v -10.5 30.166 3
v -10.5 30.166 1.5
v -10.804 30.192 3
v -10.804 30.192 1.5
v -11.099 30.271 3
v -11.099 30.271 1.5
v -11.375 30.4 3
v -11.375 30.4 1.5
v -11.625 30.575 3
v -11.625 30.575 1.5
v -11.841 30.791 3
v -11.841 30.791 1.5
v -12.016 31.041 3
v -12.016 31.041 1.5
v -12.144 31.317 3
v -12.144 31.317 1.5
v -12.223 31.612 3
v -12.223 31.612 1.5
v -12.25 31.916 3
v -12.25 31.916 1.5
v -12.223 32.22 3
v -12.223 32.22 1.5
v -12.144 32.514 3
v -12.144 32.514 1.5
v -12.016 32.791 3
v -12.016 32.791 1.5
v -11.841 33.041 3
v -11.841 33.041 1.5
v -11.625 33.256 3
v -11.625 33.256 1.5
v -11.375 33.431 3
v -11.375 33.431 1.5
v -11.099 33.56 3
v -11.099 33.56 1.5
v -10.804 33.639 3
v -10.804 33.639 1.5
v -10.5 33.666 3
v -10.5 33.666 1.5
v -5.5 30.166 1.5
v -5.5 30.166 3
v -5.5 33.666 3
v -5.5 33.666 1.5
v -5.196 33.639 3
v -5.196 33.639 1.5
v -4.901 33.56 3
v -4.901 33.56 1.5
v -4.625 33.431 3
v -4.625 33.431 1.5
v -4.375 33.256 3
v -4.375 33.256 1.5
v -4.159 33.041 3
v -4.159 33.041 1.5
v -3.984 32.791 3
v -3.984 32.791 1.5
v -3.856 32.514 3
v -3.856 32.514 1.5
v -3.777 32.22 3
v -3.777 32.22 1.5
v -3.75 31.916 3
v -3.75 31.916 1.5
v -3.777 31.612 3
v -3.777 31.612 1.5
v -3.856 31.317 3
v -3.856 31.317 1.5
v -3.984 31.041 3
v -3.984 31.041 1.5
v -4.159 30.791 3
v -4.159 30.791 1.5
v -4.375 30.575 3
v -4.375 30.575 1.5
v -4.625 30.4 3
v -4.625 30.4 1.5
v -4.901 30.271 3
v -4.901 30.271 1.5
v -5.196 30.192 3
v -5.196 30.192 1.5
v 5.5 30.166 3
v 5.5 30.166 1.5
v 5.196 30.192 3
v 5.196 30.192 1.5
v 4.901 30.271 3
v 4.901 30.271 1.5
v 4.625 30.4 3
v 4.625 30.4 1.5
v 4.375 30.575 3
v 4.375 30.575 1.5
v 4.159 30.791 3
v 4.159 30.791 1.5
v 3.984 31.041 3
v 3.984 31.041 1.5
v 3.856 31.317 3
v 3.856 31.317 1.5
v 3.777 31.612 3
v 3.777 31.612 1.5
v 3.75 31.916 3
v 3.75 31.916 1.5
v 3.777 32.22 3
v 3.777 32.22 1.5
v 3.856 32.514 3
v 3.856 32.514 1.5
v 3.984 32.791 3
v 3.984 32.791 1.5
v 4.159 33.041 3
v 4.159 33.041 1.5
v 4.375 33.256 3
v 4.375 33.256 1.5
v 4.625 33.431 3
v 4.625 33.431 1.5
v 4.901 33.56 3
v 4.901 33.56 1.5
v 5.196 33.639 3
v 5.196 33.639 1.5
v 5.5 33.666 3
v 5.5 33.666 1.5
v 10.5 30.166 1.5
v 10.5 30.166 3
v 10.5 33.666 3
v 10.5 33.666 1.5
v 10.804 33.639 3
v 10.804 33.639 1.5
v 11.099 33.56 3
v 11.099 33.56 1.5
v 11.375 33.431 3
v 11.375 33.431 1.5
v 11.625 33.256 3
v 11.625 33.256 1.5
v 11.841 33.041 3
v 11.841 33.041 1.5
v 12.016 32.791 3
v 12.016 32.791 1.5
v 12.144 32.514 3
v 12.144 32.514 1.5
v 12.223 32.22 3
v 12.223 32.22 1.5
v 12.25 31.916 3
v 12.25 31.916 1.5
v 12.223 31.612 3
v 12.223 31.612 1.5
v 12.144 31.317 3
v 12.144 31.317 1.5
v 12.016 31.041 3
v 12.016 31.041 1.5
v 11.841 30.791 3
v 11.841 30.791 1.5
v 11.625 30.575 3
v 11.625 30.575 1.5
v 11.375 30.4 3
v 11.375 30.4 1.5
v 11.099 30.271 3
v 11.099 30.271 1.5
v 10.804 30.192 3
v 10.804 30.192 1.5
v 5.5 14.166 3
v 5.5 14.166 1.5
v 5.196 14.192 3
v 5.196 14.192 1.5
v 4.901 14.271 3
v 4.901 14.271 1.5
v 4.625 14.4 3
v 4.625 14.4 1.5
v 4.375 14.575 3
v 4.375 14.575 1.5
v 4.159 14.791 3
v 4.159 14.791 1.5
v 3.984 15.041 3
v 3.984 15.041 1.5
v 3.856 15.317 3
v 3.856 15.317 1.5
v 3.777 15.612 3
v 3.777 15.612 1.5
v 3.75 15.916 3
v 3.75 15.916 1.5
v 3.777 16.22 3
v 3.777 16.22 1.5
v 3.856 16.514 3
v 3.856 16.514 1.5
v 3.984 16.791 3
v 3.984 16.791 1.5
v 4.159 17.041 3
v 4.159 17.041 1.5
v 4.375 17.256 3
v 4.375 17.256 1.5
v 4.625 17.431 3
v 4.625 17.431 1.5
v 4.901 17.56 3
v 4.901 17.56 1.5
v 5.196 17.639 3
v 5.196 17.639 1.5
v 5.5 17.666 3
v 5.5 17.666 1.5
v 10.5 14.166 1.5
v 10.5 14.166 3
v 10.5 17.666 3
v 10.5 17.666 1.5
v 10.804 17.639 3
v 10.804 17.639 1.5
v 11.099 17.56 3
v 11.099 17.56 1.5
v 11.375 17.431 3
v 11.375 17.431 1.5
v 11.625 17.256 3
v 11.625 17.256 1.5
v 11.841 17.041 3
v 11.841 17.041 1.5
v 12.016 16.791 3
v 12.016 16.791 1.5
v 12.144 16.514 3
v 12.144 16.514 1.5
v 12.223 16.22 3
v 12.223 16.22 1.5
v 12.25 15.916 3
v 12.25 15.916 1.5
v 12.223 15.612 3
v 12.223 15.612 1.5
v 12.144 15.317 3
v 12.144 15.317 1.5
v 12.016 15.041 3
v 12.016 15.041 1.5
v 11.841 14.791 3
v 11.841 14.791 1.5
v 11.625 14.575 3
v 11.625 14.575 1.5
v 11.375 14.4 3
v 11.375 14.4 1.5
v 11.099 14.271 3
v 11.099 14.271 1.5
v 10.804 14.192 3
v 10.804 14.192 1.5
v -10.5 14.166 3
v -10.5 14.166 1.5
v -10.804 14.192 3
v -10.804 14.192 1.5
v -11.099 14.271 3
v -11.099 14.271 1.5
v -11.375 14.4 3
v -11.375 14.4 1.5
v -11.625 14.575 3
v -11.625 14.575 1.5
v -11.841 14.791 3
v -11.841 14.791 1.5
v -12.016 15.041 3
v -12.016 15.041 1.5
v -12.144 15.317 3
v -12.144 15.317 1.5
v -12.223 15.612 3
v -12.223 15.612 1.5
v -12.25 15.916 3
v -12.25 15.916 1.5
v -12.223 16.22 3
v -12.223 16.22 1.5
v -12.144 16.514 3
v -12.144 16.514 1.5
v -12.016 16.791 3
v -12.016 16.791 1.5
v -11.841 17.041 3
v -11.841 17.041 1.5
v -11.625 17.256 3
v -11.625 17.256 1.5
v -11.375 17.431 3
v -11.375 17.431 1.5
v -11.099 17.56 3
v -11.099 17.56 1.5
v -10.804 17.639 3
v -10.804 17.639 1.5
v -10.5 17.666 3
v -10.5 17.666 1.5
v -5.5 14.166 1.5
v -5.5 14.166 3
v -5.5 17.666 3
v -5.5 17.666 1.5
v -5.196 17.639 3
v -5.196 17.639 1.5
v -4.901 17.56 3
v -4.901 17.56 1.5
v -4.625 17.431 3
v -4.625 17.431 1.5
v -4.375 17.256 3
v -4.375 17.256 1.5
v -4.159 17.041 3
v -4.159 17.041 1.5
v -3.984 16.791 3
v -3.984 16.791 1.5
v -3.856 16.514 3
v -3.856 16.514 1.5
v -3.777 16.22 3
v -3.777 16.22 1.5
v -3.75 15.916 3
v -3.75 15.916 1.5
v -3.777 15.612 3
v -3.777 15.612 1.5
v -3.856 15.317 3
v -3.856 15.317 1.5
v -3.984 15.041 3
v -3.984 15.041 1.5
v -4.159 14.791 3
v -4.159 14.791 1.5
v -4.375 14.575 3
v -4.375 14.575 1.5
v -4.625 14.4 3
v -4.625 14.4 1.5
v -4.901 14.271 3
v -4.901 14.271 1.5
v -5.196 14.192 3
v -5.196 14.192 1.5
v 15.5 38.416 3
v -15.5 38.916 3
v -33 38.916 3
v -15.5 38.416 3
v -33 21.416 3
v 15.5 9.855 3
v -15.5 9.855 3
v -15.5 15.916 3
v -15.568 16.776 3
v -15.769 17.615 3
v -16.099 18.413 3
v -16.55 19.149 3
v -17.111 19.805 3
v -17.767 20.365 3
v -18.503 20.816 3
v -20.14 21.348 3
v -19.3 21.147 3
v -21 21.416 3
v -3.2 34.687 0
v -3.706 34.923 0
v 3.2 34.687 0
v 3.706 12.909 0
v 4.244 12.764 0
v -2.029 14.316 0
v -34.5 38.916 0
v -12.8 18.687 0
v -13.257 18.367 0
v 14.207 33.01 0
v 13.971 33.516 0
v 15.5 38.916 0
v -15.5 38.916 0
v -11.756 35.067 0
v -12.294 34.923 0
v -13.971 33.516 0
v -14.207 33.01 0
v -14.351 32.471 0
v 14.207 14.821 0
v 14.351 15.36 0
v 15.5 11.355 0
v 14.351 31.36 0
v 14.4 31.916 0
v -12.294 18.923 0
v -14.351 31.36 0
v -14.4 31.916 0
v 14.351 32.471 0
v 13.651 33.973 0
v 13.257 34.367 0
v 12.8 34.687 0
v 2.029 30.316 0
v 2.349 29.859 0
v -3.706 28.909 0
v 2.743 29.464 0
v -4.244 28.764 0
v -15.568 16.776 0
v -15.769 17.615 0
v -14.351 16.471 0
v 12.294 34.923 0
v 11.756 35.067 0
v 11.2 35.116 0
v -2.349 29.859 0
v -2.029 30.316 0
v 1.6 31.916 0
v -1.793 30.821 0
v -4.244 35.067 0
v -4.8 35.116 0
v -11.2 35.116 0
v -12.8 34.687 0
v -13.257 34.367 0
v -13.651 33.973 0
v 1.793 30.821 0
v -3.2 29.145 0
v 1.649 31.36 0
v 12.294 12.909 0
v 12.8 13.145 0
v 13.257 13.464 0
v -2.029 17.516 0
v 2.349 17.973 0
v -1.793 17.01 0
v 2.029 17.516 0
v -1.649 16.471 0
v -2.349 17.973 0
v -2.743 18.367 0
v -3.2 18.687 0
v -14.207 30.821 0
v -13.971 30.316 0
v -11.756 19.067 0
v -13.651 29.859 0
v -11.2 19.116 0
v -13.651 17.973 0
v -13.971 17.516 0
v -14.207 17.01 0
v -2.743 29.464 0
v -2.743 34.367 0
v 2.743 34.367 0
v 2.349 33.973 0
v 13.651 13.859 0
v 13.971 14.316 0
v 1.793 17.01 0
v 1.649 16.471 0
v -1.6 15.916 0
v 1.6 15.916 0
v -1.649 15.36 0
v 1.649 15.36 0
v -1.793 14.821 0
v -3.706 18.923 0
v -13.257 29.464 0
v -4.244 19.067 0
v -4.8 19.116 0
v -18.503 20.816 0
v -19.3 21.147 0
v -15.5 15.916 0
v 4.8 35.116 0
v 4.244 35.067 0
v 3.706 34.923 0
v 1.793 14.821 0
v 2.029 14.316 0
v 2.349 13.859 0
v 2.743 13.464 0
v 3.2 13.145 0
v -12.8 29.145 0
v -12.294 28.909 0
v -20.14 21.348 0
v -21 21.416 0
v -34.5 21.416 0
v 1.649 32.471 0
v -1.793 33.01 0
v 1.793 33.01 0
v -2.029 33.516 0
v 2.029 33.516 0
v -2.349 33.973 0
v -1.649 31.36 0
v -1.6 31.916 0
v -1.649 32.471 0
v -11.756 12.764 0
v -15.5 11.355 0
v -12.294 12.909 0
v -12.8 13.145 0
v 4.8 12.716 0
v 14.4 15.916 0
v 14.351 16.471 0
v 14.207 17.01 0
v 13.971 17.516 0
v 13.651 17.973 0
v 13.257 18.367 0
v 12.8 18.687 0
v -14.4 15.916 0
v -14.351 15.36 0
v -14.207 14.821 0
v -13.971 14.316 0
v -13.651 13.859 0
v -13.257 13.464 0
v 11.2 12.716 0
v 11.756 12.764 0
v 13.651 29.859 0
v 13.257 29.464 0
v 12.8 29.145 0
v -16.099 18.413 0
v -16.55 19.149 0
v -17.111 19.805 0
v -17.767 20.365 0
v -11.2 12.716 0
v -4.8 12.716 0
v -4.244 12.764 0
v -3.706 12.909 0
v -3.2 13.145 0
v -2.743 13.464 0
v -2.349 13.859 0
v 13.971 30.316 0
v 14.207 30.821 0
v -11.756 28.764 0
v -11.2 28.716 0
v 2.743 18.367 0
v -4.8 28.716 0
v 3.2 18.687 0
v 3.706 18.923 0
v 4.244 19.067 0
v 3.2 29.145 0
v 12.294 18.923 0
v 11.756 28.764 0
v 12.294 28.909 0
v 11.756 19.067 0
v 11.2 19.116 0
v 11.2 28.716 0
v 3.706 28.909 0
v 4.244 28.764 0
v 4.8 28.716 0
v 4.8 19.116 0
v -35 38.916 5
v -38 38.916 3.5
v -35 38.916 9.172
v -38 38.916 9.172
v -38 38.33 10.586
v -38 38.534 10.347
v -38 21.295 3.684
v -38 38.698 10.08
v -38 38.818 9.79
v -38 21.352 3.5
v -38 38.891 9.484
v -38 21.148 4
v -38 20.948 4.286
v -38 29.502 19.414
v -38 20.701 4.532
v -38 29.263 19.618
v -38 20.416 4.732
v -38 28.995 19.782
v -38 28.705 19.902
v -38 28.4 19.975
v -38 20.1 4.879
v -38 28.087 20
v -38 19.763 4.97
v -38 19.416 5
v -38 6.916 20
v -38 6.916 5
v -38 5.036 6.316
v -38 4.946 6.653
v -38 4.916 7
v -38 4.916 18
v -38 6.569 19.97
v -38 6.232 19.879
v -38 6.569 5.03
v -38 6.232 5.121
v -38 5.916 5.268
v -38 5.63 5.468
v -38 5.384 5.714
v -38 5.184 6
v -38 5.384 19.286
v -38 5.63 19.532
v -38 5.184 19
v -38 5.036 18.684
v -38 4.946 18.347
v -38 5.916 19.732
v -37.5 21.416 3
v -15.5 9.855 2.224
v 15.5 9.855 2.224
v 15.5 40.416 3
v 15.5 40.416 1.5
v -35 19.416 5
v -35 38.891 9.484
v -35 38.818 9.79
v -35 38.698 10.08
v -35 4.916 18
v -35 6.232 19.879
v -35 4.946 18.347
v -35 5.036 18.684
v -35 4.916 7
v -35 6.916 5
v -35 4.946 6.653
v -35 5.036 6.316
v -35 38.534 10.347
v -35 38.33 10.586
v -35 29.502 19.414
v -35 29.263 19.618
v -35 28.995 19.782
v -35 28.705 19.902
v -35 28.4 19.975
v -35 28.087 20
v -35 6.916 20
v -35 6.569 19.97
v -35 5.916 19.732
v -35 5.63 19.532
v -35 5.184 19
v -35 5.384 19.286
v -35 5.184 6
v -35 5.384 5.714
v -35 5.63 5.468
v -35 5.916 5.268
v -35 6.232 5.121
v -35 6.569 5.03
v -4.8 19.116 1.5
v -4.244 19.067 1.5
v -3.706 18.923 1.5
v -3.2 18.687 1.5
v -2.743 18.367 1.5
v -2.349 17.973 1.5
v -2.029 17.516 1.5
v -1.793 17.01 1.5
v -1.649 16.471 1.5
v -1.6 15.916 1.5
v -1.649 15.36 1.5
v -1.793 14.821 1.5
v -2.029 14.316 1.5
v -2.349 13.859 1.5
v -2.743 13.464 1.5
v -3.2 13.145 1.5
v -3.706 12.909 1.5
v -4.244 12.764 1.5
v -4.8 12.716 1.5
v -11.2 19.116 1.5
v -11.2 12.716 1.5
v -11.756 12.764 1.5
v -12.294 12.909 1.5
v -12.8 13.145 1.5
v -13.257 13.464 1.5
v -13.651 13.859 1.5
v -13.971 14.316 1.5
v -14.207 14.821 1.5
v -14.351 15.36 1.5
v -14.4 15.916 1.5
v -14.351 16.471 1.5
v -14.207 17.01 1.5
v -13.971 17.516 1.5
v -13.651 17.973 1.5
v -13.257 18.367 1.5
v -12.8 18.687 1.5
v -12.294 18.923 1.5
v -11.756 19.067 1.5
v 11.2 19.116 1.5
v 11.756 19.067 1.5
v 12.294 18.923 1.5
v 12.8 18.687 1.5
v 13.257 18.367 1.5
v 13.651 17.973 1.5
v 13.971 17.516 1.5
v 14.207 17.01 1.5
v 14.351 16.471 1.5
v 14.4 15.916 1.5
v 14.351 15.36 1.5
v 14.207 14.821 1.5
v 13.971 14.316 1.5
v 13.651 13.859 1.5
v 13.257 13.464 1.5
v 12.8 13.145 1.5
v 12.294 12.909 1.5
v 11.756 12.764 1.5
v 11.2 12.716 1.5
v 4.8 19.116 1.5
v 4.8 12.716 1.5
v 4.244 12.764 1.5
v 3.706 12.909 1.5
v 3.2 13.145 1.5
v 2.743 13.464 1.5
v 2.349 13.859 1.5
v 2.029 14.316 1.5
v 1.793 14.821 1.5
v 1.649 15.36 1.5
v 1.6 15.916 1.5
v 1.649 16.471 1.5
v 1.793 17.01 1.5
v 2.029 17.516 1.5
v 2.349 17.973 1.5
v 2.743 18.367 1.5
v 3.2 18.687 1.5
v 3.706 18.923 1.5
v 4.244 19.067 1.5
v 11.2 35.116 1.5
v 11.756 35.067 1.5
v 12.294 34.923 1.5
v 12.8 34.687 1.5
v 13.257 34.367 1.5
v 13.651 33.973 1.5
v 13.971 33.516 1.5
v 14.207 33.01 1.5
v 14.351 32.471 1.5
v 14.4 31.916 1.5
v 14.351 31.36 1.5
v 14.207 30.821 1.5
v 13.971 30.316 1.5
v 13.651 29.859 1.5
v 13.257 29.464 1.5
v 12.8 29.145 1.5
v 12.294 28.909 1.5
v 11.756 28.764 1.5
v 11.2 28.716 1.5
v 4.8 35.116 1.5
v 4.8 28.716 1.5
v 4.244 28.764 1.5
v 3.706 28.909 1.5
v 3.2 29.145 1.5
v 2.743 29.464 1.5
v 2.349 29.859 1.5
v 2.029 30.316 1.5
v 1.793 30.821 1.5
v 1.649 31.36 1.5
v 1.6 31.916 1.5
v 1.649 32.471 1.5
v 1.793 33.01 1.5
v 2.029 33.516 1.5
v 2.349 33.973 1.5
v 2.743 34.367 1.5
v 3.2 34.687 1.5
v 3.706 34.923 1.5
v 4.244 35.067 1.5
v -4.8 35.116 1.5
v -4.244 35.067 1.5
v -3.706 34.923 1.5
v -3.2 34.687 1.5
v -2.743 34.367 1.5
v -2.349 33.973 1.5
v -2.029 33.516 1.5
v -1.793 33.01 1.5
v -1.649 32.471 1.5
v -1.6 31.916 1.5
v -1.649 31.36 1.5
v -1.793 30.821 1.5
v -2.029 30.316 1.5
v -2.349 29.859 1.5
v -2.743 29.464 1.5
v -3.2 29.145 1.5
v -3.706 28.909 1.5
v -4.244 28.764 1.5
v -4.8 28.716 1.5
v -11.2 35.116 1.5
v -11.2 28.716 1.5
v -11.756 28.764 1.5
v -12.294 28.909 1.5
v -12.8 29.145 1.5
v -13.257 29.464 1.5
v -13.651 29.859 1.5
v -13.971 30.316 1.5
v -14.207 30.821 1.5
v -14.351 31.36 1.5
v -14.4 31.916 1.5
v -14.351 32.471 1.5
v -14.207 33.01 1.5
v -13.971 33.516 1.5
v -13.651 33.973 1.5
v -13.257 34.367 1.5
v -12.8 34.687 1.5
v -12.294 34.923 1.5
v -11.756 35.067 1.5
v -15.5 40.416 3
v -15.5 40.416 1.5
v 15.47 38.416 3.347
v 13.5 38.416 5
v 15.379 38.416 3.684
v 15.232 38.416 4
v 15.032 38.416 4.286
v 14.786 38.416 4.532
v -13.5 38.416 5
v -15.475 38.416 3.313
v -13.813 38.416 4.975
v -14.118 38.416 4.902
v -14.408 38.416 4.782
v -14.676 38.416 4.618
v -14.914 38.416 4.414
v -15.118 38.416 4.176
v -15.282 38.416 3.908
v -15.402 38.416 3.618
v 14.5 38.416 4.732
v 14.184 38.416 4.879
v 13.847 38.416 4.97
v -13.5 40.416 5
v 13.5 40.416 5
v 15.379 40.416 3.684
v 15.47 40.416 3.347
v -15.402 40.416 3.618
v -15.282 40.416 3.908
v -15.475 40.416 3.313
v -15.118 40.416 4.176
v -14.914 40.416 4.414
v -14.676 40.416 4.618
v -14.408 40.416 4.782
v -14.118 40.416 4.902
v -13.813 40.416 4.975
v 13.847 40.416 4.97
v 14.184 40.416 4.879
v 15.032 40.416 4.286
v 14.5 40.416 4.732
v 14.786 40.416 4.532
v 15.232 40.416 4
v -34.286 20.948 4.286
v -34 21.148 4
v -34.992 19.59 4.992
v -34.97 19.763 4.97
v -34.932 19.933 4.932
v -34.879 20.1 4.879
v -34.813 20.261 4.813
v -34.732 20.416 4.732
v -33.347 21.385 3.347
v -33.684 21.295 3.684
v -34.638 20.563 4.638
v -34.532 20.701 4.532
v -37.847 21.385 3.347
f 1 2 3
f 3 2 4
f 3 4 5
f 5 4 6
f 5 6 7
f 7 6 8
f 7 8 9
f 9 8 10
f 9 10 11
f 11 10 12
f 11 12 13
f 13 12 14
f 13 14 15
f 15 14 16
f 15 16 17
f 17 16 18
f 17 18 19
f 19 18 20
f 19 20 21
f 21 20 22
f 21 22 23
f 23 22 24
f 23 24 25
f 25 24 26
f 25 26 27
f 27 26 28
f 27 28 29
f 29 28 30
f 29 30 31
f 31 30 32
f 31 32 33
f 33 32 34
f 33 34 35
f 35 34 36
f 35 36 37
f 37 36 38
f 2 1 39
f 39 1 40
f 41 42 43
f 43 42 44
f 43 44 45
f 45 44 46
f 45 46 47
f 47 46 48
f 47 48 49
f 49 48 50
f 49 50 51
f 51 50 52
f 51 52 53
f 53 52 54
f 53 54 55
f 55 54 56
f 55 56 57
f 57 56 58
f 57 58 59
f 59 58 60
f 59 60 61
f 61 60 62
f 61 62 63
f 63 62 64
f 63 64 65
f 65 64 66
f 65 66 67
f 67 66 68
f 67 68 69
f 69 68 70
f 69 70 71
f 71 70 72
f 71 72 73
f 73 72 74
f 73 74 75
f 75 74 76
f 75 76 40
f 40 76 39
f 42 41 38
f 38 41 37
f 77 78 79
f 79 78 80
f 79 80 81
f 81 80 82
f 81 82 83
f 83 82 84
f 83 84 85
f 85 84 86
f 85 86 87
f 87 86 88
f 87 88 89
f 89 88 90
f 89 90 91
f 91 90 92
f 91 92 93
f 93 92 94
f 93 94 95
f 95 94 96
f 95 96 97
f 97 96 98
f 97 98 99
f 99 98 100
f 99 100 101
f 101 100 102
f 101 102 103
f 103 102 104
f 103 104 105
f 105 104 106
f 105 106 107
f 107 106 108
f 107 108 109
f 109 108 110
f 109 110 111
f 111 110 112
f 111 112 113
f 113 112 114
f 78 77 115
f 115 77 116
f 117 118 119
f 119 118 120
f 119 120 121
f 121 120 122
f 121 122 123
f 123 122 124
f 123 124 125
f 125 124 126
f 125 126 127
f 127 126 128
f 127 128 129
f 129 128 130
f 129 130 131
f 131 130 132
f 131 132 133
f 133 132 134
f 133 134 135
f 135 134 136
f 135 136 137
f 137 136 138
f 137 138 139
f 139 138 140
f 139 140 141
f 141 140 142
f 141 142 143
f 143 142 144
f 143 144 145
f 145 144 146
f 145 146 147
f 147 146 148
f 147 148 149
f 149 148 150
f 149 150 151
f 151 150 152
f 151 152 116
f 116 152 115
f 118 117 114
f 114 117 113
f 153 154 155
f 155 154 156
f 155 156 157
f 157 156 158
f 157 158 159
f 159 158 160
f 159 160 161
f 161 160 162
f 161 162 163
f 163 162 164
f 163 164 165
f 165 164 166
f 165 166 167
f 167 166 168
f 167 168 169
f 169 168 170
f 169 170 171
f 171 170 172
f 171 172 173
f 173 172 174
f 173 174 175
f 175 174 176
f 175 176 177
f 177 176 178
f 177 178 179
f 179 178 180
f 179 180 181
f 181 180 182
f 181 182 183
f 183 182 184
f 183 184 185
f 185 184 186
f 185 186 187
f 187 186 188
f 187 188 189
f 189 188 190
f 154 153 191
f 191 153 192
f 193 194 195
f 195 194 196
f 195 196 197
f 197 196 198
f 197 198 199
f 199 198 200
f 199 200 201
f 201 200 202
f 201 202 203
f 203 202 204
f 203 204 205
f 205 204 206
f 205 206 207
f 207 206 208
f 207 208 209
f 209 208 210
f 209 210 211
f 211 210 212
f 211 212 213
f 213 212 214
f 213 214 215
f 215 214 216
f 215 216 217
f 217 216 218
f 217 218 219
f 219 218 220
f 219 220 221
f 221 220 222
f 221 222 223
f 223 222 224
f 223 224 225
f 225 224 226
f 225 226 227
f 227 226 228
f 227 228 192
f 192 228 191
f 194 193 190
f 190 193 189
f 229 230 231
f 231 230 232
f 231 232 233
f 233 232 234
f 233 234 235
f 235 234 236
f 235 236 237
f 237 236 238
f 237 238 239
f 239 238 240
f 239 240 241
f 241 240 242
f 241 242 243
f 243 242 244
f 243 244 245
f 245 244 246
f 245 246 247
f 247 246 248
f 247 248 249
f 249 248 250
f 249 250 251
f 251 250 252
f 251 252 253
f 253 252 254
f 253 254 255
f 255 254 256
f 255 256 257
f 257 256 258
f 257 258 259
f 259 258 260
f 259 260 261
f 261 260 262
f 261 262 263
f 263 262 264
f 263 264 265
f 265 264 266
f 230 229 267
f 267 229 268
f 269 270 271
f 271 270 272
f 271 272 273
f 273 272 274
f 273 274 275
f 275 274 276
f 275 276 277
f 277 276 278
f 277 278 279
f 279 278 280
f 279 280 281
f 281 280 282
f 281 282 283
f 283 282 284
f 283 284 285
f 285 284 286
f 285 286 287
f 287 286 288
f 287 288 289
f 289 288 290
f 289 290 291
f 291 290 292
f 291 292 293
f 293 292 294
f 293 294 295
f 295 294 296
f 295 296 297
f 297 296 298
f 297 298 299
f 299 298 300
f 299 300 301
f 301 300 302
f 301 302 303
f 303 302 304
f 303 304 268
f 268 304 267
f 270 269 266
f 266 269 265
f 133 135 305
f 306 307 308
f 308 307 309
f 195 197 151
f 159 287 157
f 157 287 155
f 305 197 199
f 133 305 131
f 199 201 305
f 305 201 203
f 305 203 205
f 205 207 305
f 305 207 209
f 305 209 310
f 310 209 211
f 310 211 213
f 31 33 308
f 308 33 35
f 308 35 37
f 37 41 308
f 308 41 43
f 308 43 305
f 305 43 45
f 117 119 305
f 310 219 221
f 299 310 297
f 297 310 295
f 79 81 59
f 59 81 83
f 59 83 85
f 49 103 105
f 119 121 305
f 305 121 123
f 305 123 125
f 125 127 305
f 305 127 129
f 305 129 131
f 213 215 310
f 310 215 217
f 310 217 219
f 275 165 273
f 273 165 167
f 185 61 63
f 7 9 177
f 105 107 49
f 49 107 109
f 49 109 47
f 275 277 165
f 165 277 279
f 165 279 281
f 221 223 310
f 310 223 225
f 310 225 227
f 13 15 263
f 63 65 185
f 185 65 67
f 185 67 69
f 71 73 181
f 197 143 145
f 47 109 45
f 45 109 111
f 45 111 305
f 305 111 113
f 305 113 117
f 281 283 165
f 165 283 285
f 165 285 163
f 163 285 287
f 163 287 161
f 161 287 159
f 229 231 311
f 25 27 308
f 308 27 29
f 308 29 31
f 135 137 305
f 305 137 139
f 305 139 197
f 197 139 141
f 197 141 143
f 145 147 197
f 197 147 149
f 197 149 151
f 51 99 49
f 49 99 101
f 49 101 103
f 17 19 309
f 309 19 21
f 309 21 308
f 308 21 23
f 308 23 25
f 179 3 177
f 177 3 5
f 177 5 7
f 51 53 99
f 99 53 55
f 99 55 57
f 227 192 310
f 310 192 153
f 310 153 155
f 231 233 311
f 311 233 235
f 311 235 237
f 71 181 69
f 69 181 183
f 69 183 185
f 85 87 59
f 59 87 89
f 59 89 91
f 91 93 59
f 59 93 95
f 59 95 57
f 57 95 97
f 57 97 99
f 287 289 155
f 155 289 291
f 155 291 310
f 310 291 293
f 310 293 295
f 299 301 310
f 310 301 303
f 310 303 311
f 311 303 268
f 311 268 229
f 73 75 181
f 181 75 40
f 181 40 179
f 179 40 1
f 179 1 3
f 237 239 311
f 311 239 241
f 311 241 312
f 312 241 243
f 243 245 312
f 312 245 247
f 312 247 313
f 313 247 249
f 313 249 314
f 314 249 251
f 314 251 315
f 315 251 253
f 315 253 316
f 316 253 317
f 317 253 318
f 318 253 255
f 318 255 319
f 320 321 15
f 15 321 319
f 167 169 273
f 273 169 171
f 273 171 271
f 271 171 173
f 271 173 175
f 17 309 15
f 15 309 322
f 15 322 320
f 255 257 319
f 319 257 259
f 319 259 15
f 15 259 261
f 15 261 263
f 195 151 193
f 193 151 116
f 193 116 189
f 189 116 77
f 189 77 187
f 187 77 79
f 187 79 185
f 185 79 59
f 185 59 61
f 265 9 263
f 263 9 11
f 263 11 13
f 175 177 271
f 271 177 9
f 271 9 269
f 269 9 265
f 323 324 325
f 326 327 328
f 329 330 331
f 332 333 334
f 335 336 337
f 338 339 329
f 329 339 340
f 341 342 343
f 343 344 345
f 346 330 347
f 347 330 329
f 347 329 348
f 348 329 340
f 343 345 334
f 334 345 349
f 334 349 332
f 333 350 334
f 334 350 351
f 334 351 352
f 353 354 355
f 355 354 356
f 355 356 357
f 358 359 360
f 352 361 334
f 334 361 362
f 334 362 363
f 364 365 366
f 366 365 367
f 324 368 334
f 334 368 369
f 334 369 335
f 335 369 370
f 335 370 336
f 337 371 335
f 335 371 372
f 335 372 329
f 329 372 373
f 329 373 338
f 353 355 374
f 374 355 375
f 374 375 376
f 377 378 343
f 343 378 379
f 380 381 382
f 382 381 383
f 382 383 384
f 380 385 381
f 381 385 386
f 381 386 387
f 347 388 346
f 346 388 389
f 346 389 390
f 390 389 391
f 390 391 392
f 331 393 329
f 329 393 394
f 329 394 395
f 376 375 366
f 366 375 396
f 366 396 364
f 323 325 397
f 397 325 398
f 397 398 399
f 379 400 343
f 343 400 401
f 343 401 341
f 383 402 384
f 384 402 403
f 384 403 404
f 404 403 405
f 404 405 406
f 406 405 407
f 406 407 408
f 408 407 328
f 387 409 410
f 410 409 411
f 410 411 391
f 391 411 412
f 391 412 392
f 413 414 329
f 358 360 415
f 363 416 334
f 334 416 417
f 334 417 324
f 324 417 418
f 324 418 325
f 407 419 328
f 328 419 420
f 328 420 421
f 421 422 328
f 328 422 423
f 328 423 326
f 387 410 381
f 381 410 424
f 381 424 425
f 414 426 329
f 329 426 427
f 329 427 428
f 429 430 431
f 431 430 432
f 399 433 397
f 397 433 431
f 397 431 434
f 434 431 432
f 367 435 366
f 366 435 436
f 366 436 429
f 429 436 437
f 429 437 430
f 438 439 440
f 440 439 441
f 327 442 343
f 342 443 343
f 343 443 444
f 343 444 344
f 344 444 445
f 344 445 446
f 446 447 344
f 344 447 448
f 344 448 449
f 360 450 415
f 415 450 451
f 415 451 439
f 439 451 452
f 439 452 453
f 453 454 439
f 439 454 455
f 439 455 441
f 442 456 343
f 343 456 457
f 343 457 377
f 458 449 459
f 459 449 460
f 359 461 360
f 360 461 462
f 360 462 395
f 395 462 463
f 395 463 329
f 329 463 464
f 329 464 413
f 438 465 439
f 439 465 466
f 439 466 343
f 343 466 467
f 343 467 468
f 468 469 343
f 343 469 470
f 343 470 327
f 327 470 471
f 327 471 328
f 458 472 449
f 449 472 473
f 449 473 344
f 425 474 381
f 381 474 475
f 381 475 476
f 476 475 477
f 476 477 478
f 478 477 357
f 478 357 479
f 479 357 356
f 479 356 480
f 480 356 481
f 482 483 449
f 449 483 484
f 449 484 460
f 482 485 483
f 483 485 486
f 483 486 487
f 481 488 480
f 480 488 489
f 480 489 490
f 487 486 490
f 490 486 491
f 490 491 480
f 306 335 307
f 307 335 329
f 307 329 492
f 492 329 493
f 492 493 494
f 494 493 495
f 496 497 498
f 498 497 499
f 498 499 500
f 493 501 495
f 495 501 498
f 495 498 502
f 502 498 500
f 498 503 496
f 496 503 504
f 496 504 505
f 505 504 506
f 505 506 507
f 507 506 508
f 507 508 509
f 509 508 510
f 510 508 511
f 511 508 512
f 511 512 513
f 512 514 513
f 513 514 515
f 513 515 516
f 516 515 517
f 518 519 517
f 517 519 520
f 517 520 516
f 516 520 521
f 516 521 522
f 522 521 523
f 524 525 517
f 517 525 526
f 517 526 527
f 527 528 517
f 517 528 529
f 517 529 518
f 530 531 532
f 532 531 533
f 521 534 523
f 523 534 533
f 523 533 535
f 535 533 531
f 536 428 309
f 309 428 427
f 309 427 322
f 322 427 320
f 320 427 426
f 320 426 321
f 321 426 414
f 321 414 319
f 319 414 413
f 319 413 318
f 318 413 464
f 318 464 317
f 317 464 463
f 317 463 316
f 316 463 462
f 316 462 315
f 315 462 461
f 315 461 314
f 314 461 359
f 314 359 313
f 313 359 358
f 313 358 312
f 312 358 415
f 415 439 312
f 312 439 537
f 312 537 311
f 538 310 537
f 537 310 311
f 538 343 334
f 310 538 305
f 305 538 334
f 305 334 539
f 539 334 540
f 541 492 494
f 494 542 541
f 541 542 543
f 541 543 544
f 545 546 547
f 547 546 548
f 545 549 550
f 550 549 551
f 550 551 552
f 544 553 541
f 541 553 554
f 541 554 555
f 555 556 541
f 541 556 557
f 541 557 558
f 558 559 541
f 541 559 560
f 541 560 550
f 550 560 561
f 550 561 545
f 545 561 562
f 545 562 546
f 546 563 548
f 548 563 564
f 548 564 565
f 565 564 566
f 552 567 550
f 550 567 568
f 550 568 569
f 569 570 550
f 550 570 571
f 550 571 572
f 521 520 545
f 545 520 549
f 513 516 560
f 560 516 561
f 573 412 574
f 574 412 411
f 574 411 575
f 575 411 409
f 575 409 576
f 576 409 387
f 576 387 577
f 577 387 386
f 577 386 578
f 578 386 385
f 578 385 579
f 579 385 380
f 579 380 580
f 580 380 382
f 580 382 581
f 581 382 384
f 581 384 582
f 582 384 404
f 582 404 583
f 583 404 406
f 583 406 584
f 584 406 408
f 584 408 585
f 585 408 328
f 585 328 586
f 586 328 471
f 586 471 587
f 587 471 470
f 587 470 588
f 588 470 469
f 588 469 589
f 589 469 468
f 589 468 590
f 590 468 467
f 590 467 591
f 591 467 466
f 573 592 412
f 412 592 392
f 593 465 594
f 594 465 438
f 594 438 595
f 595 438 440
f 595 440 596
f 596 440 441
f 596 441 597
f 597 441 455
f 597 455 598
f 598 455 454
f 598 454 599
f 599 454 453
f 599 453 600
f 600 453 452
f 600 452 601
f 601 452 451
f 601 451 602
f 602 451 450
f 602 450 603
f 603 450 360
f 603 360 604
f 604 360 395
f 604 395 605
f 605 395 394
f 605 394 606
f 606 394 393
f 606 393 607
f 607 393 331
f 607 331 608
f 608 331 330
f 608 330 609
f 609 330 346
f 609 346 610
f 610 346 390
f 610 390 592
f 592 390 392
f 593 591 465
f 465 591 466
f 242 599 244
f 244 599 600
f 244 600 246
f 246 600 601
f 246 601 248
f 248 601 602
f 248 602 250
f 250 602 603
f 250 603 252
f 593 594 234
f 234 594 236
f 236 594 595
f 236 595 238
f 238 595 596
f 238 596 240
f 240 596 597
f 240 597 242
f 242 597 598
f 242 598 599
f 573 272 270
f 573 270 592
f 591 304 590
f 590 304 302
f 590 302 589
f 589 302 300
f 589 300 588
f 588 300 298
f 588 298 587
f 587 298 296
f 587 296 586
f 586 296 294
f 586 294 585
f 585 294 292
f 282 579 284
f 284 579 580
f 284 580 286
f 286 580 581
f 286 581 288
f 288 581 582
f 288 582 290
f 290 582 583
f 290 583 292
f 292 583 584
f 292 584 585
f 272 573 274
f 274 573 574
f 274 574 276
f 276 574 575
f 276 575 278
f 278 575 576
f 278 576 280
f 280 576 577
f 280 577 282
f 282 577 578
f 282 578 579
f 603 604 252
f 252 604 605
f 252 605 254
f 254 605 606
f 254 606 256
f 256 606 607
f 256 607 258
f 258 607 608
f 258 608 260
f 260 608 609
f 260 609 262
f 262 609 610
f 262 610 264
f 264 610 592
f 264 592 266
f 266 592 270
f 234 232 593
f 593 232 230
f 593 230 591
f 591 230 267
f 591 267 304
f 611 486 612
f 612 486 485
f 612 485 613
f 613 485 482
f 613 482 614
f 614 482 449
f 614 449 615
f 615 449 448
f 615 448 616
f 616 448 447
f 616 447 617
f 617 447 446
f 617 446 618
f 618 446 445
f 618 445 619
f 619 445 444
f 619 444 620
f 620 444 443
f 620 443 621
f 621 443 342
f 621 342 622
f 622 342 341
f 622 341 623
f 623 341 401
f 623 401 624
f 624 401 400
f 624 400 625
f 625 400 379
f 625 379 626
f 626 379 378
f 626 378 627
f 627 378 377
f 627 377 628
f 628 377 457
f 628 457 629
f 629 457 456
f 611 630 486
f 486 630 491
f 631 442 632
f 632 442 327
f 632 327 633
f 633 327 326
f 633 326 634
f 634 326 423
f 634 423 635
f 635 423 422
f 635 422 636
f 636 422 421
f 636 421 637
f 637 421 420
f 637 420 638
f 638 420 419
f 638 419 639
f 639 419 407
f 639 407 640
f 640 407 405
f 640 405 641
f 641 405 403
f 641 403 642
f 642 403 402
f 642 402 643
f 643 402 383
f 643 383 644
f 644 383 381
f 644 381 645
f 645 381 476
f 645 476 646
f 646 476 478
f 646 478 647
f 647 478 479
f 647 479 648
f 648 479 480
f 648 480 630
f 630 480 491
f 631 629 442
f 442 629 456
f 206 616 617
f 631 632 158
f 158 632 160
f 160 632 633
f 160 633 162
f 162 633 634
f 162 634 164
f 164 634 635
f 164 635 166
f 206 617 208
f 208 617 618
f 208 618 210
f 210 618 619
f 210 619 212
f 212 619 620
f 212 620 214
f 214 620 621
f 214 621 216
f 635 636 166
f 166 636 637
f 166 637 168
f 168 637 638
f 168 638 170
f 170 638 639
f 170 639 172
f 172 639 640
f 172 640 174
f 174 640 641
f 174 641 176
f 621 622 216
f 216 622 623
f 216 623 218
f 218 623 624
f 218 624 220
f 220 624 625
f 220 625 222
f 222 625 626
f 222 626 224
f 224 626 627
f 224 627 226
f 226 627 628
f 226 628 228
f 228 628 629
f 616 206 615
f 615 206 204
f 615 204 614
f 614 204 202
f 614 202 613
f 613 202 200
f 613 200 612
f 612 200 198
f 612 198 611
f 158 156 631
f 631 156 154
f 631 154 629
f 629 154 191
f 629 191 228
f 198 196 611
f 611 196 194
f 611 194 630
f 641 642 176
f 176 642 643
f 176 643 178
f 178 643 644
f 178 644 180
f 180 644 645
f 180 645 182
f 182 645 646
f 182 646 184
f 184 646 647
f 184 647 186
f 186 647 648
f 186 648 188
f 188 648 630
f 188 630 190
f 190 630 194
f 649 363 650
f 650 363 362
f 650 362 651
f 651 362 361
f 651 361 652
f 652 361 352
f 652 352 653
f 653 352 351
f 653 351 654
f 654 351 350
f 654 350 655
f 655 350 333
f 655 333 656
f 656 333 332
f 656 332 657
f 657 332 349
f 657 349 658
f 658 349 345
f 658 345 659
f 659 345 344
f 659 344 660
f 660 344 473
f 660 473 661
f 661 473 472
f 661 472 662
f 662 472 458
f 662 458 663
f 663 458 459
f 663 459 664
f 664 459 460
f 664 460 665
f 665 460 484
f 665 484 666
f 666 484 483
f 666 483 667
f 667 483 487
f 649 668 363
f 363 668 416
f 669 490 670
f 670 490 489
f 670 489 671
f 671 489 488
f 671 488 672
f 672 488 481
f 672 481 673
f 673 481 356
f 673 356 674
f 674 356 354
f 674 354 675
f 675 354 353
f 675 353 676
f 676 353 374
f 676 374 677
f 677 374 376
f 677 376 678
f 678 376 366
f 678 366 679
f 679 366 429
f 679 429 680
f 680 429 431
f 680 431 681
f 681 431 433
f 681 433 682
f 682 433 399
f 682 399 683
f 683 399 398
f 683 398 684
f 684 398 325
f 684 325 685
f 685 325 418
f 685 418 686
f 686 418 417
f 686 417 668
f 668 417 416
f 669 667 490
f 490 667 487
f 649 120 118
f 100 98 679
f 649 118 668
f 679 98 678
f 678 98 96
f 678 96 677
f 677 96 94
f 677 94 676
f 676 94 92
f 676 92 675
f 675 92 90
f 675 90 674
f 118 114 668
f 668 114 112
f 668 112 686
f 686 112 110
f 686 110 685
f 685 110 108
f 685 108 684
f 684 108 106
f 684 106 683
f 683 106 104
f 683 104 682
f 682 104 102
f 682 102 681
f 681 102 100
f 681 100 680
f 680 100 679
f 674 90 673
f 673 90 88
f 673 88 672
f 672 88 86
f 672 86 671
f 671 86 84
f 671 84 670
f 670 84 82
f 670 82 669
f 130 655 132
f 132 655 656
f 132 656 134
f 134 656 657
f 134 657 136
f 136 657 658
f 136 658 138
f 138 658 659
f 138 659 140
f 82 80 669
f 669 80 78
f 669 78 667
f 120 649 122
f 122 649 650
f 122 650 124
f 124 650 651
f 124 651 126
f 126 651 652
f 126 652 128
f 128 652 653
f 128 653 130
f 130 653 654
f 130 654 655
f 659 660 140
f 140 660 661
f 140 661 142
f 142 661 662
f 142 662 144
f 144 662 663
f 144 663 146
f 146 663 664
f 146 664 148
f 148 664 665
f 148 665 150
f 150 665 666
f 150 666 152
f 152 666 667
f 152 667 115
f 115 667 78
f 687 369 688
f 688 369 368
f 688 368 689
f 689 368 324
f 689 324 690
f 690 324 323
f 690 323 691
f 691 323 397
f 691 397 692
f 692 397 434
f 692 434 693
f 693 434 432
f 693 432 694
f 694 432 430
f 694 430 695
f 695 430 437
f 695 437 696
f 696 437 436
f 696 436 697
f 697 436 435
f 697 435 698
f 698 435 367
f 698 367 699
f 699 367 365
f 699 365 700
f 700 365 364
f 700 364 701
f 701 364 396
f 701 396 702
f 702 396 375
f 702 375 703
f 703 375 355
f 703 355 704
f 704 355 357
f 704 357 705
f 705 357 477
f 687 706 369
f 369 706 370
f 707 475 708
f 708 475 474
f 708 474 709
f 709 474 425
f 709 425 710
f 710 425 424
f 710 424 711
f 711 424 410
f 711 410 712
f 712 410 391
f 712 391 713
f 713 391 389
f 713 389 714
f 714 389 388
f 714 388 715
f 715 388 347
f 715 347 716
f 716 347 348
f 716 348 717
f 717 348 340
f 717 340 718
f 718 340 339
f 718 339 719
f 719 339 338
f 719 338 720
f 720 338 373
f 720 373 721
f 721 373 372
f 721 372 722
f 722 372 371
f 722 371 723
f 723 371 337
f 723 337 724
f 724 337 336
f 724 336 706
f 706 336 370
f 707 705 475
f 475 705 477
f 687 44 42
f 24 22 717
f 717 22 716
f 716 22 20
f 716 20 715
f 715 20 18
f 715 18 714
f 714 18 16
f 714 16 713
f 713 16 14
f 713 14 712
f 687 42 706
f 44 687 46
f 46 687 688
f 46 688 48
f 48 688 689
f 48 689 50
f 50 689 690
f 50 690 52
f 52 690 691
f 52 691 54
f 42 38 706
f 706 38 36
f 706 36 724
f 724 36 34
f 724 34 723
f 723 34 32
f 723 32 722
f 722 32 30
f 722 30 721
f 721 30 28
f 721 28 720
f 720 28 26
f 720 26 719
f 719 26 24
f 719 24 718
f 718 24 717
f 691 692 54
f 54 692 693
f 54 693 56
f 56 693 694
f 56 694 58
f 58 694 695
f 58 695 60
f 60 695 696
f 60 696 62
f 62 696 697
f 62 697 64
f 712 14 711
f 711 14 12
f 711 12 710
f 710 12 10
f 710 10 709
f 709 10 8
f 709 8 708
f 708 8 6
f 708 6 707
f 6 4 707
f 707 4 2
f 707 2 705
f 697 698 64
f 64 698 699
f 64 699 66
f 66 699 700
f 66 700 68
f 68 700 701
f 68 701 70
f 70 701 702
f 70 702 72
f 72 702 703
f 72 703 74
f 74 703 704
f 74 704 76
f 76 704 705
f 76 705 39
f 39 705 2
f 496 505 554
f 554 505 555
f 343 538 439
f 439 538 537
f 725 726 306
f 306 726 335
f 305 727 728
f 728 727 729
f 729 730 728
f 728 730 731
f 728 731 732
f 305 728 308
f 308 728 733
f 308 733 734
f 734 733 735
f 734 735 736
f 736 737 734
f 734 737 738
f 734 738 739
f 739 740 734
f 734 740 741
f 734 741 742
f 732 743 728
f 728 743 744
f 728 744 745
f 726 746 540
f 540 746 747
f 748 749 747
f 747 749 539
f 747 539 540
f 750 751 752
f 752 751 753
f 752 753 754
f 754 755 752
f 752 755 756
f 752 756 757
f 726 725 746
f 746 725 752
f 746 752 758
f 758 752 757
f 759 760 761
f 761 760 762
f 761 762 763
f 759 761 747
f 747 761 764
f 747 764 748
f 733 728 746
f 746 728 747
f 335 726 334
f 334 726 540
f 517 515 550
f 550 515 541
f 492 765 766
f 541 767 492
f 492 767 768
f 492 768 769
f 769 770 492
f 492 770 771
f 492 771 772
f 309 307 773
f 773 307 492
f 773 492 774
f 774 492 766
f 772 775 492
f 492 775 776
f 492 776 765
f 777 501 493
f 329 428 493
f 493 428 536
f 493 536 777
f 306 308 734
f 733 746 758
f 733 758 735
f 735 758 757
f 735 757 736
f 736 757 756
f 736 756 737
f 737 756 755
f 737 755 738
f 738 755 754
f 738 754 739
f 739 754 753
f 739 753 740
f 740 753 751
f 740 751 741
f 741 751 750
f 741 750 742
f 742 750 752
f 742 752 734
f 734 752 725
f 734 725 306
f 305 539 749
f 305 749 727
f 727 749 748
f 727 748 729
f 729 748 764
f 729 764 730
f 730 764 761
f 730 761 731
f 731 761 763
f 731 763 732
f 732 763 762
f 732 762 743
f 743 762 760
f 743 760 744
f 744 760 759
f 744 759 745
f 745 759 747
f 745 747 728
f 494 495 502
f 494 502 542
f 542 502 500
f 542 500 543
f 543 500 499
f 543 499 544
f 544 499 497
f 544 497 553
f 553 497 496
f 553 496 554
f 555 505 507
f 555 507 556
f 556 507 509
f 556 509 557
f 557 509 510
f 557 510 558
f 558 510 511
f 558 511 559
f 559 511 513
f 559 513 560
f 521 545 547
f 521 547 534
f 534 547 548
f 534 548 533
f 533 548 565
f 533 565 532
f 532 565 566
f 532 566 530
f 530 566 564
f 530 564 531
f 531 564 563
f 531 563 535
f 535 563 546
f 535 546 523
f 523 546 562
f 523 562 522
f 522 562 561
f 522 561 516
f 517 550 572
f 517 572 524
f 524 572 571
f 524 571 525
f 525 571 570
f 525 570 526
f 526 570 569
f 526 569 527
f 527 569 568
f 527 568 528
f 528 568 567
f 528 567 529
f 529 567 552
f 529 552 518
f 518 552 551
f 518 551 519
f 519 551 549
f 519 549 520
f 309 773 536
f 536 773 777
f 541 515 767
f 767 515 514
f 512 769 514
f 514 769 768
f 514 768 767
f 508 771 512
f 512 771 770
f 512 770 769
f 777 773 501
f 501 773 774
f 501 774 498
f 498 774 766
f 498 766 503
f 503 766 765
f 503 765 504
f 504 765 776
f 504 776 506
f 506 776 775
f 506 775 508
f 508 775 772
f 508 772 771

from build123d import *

# Parameters (mm, degrees)
BOSS_EXTRUDE1_DEPTH      = 3
SKETCH2_W                = 3
SKETCH2_H                = 34
BOSS_EXTRUDE2_DEPTH      = 17
BOSS_EXTRUDE2_DEPTH_BACK = 3
SKETCH3_W                = 22.5
SKETCH3_H                = 29.060921084
CUT_EXTRUDE1_DEPTH       = 18
CUT_EXTRUDE2_DEPTH       = 1.5
CHAMFER1_SIZE            = 10
CHAMFER2_SIZE            = 1.5
CHAMFER2_SIZE2           = 2.223841453
SKETCH7_W                = 31
SKETCH7_H                = 2
BOSS_EXTRUDE3_DEPTH      = 2
BOSS_EXTRUDE3_DEPTH_BACK = 3
SKETCH9_W                = 0.5
SKETCH9_H                = 11.560921084
CUT_EXTRUDE4_DEPTH       = 10
CHAMFER3_SIZE            = 1.5
CUT_EXTRUDE6_START       = -16.5
SKETCH11_W               = 3
SKETCH11_H               = 5
CUT_EXTRUDE6_DEPTH       = 16.5
CHAMFER9_SIZE            = 2
CHAMFER10_SIZE           = 3.5
FILLET2_R                = 2


with BuildPart() as part:
    # Sketch1 → Boss-Extrude1 (new body)
    with BuildSketch(Plane.XY):
        with BuildLine():
            Line((38, 38.915798387), (-38, 38.915798387))
            Line((-38, 38.915798387), (-38, 9.854877303))
            Line((-38, 9.854877303), (-34.5, 9.854877303))
            Line((-34.5, 9.854877303), (-34.5, 15.915798387))
            Line((-34.5, 15.915798387), (-34.5, 21.415798387))
            Line((-34.5, 21.415798387), (-29, 21.415798387))
            Line((-29, 21.415798387), (-21, 21.415798387))
            ThreePointArc((-21, 21.415798387), (-17.110912703, 19.804885683), (-15.5, 15.915798387))
            Line((-15.5, 15.915798387), (-15.5, 9.854877303))
            Line((-15.5, 9.854877303), (15.5, 9.854877303))
            Line((15.5, 9.854877303), (15.5, 15.915798387))
            ThreePointArc((15.5, 15.915798387), (17.110912703, 19.804885683), (21, 21.415798387))
            Line((21, 21.415798387), (29, 21.415798387))
            ThreePointArc((29, 21.415798387), (32.889087297, 19.804885683), (34.5, 15.915798387))
            Line((34.5, 15.915798387), (34.5, 9.854877303))
            Line((34.5, 9.854877303), (38, 9.854877303))
            Line((38, 9.854877303), (38, 38.915798387))
        make_face()
        with BuildLine():
            Line((-10.5, 33.665798387), (-5.5, 33.665798387))
            ThreePointArc((-5.5, 33.665798387), (-3.75, 31.915798387), (-5.5, 30.165798387))
            Line((-5.5, 30.165798387), (-10.5, 30.165798387))
            ThreePointArc((-10.5, 30.165798387), (-12.25, 31.915798387), (-10.5, 33.665798387))
        make_face(mode=Mode.SUBTRACT)
        with BuildLine():
            Line((5.5, 33.665798387), (10.5, 33.665798387))
            ThreePointArc((10.5, 33.665798387), (12.25, 31.915798387), (10.5, 30.165798387))
            Line((10.5, 30.165798387), (5.5, 30.165798387))
            ThreePointArc((5.5, 30.165798387), (3.75, 31.915798387), (5.5, 33.665798387))
        make_face(mode=Mode.SUBTRACT)
        with BuildLine():
            Line((5.5, 17.665798387), (10.5, 17.665798387))
            ThreePointArc((10.5, 17.665798387), (12.25, 15.915798387), (10.5, 14.165798387))
            Line((10.5, 14.165798387), (5.5, 14.165798387))
            ThreePointArc((5.5, 14.165798387), (3.75, 15.915798387), (5.5, 17.665798387))
        make_face(mode=Mode.SUBTRACT)
        with BuildLine():
            Line((-10.5, 17.665798387), (-5.5, 17.665798387))
            ThreePointArc((-5.5, 17.665798387), (-3.75, 15.915798387), (-5.5, 14.165798387))
            Line((-5.5, 14.165798387), (-10.5, 14.165798387))
            ThreePointArc((-10.5, 14.165798387), (-12.25, 15.915798387), (-10.5, 17.665798387))
        make_face(mode=Mode.SUBTRACT)
    extrude(amount=BOSS_EXTRUDE1_DEPTH)

    # Sketch2 → Boss-Extrude2 (add, two sides)
    with BuildSketch(Plane.XY.offset(3)) as boss_extrude2_sk:
        with Locations((-36.5, 21.915798387)):
            Rectangle(SKETCH2_W, SKETCH2_H)
    extrude(amount=BOSS_EXTRUDE2_DEPTH)
    extrude(boss_extrude2_sk.sketch, amount=-BOSS_EXTRUDE2_DEPTH_BACK)

    # Sketch3 → Cut-Extrude1 (cut)
    with BuildSketch(Plane.XY.offset(3)):
        with Locations((26.75, 24.385337845)):
            Rectangle(SKETCH3_W, SKETCH3_H)
    extrude(amount=-CUT_EXTRUDE1_DEPTH, mode=Mode.SUBTRACT)

    # Sketch4 → Cut-Extrude2 (cut)
    with BuildSketch(Plane(origin=(0, 0, 0), x_dir=(-1, 0, 0), z_dir=(0, 0, -1))):
        with BuildLine():
            Line((4.8, 35.115798387), (11.2, 35.115798387))
            ThreePointArc((11.2, 35.115798387), (14.4, 31.915798387), (11.2, 28.715798387))
            Line((11.2, 28.715798387), (4.8, 28.715798387))
            ThreePointArc((4.8, 28.715798387), (1.6, 31.915798387), (4.8, 35.115798387))
        make_face()
        with BuildLine():
            Line((-11.2, 35.115798387), (-4.8, 35.115798387))
            ThreePointArc((-4.8, 35.115798387), (-1.6, 31.915798387), (-4.8, 28.715798387))
            Line((-4.8, 28.715798387), (-11.2, 28.715798387))
            ThreePointArc((-11.2, 28.715798387), (-14.4, 31.915798387), (-11.2, 35.115798387))
        make_face()
        with BuildLine():
            Line((4.8, 19.115798387), (11.2, 19.115798387))
            ThreePointArc((11.2, 19.115798387), (14.4, 15.915798387), (11.2, 12.715798387))
            Line((11.2, 12.715798387), (4.8, 12.715798387))
            ThreePointArc((4.8, 12.715798387), (1.6, 15.915798387), (4.8, 19.115798387))
        make_face()
        with BuildLine():
            Line((-11.2, 19.115798387), (-4.8, 19.115798387))
            ThreePointArc((-4.8, 19.115798387), (-1.6, 15.915798387), (-4.8, 12.715798387))
            Line((-4.8, 12.715798387), (-11.2, 12.715798387))
            ThreePointArc((-11.2, 12.715798387), (-14.4, 15.915798387), (-11.2, 19.115798387))
        make_face()
    extrude(amount=-CUT_EXTRUDE2_DEPTH, mode=Mode.SUBTRACT)

    # Chamfer1
    chamfer1_edges = [part.edges().sort_by_distance(p)[0] for p in [
        (-36.5, 38.915798387, 20),
    ]]
    chamfer(chamfer1_edges, length=CHAMFER1_SIZE)

    # Chamfer2
    chamfer2_edges = [part.edges().sort_by_distance(p)[0] for p in [
        (0, 9.854877303, 0),
    ]]
    chamfer2_side = [part.faces().sort_by_distance(p)[0] for p in [
        (-11.889403283, 26.058636035, 0),
    ]]
    chamfer(chamfer2_edges, length=CHAMFER2_SIZE, length2=CHAMFER2_SIZE2, reference=chamfer2_side[0])

    # Sketch7 → Boss-Extrude3 (add, two sides)
    with BuildSketch(Plane.XY.offset(3)) as boss_extrude3_sk:
        with Locations((0, 39.415798387)):
            Rectangle(SKETCH7_W, SKETCH7_H)
    extrude(amount=BOSS_EXTRUDE3_DEPTH)
    extrude(boss_extrude3_sk.sketch, amount=-BOSS_EXTRUDE3_DEPTH_BACK)

    # Sketch9 → Cut-Extrude4 (cut)
    with BuildSketch(Plane(origin=(0, 0, 0), x_dir=(-1, 0, 0), z_dir=(0, 0, -1))):
        with Locations((34.75, 15.635337845)):
            Rectangle(SKETCH9_W, SKETCH9_H)
    extrude(amount=-CUT_EXTRUDE4_DEPTH, mode=Mode.SUBTRACT)

    # Chamfer3
    chamfer3_edges = [part.edges().sort_by_distance(p)[0] for p in [
        (0, 40.415798387, 0),
    ]]
    chamfer(chamfer3_edges, length=CHAMFER3_SIZE)

    # Sketch11 → Cut-Extrude6 (cut)
    with BuildSketch(Plane(origin=(0, 4.915798387, 0), x_dir=(-1, 0, 0), z_dir=(0, -1, 0)).offset(CUT_EXTRUDE6_START)):
        with Locations((36.5, -2.5)):
            Rectangle(SKETCH11_W, SKETCH11_H)
    extrude(amount=CUT_EXTRUDE6_DEPTH, mode=Mode.SUBTRACT)

    # Chamfer9
    chamfer9_edges = [part.edges().sort_by_distance(p)[0] for p in [
        (-35, 30.165798387, 3),
    ]]
    chamfer(chamfer9_edges, length=CHAMFER9_SIZE)

    # Chamfer10
    chamfer10_edges = [part.edges().sort_by_distance(p)[0] for p in [
        (-38, 30.165798387, 0),
    ]]
    chamfer(chamfer10_edges, length=CHAMFER10_SIZE)

    # Fillet2
    fillet2_edges = [part.edges().sort_by_distance(p)[0] for p in [
        (-36.5, 21.415798387, 5),
        (-36.5, 38.915798387, 10),
        (-36.5, 28.915798387, 20),
        (-36.5, 4.915798387, 20),
        (-36.5, 4.915798387, 5),
        (-15.5, 39.415798387, 5),
        (15.5, 39.415798387, 5),
    ]]
    fillet(fillet2_edges, radius=FILLET2_R)


solid = part.part
